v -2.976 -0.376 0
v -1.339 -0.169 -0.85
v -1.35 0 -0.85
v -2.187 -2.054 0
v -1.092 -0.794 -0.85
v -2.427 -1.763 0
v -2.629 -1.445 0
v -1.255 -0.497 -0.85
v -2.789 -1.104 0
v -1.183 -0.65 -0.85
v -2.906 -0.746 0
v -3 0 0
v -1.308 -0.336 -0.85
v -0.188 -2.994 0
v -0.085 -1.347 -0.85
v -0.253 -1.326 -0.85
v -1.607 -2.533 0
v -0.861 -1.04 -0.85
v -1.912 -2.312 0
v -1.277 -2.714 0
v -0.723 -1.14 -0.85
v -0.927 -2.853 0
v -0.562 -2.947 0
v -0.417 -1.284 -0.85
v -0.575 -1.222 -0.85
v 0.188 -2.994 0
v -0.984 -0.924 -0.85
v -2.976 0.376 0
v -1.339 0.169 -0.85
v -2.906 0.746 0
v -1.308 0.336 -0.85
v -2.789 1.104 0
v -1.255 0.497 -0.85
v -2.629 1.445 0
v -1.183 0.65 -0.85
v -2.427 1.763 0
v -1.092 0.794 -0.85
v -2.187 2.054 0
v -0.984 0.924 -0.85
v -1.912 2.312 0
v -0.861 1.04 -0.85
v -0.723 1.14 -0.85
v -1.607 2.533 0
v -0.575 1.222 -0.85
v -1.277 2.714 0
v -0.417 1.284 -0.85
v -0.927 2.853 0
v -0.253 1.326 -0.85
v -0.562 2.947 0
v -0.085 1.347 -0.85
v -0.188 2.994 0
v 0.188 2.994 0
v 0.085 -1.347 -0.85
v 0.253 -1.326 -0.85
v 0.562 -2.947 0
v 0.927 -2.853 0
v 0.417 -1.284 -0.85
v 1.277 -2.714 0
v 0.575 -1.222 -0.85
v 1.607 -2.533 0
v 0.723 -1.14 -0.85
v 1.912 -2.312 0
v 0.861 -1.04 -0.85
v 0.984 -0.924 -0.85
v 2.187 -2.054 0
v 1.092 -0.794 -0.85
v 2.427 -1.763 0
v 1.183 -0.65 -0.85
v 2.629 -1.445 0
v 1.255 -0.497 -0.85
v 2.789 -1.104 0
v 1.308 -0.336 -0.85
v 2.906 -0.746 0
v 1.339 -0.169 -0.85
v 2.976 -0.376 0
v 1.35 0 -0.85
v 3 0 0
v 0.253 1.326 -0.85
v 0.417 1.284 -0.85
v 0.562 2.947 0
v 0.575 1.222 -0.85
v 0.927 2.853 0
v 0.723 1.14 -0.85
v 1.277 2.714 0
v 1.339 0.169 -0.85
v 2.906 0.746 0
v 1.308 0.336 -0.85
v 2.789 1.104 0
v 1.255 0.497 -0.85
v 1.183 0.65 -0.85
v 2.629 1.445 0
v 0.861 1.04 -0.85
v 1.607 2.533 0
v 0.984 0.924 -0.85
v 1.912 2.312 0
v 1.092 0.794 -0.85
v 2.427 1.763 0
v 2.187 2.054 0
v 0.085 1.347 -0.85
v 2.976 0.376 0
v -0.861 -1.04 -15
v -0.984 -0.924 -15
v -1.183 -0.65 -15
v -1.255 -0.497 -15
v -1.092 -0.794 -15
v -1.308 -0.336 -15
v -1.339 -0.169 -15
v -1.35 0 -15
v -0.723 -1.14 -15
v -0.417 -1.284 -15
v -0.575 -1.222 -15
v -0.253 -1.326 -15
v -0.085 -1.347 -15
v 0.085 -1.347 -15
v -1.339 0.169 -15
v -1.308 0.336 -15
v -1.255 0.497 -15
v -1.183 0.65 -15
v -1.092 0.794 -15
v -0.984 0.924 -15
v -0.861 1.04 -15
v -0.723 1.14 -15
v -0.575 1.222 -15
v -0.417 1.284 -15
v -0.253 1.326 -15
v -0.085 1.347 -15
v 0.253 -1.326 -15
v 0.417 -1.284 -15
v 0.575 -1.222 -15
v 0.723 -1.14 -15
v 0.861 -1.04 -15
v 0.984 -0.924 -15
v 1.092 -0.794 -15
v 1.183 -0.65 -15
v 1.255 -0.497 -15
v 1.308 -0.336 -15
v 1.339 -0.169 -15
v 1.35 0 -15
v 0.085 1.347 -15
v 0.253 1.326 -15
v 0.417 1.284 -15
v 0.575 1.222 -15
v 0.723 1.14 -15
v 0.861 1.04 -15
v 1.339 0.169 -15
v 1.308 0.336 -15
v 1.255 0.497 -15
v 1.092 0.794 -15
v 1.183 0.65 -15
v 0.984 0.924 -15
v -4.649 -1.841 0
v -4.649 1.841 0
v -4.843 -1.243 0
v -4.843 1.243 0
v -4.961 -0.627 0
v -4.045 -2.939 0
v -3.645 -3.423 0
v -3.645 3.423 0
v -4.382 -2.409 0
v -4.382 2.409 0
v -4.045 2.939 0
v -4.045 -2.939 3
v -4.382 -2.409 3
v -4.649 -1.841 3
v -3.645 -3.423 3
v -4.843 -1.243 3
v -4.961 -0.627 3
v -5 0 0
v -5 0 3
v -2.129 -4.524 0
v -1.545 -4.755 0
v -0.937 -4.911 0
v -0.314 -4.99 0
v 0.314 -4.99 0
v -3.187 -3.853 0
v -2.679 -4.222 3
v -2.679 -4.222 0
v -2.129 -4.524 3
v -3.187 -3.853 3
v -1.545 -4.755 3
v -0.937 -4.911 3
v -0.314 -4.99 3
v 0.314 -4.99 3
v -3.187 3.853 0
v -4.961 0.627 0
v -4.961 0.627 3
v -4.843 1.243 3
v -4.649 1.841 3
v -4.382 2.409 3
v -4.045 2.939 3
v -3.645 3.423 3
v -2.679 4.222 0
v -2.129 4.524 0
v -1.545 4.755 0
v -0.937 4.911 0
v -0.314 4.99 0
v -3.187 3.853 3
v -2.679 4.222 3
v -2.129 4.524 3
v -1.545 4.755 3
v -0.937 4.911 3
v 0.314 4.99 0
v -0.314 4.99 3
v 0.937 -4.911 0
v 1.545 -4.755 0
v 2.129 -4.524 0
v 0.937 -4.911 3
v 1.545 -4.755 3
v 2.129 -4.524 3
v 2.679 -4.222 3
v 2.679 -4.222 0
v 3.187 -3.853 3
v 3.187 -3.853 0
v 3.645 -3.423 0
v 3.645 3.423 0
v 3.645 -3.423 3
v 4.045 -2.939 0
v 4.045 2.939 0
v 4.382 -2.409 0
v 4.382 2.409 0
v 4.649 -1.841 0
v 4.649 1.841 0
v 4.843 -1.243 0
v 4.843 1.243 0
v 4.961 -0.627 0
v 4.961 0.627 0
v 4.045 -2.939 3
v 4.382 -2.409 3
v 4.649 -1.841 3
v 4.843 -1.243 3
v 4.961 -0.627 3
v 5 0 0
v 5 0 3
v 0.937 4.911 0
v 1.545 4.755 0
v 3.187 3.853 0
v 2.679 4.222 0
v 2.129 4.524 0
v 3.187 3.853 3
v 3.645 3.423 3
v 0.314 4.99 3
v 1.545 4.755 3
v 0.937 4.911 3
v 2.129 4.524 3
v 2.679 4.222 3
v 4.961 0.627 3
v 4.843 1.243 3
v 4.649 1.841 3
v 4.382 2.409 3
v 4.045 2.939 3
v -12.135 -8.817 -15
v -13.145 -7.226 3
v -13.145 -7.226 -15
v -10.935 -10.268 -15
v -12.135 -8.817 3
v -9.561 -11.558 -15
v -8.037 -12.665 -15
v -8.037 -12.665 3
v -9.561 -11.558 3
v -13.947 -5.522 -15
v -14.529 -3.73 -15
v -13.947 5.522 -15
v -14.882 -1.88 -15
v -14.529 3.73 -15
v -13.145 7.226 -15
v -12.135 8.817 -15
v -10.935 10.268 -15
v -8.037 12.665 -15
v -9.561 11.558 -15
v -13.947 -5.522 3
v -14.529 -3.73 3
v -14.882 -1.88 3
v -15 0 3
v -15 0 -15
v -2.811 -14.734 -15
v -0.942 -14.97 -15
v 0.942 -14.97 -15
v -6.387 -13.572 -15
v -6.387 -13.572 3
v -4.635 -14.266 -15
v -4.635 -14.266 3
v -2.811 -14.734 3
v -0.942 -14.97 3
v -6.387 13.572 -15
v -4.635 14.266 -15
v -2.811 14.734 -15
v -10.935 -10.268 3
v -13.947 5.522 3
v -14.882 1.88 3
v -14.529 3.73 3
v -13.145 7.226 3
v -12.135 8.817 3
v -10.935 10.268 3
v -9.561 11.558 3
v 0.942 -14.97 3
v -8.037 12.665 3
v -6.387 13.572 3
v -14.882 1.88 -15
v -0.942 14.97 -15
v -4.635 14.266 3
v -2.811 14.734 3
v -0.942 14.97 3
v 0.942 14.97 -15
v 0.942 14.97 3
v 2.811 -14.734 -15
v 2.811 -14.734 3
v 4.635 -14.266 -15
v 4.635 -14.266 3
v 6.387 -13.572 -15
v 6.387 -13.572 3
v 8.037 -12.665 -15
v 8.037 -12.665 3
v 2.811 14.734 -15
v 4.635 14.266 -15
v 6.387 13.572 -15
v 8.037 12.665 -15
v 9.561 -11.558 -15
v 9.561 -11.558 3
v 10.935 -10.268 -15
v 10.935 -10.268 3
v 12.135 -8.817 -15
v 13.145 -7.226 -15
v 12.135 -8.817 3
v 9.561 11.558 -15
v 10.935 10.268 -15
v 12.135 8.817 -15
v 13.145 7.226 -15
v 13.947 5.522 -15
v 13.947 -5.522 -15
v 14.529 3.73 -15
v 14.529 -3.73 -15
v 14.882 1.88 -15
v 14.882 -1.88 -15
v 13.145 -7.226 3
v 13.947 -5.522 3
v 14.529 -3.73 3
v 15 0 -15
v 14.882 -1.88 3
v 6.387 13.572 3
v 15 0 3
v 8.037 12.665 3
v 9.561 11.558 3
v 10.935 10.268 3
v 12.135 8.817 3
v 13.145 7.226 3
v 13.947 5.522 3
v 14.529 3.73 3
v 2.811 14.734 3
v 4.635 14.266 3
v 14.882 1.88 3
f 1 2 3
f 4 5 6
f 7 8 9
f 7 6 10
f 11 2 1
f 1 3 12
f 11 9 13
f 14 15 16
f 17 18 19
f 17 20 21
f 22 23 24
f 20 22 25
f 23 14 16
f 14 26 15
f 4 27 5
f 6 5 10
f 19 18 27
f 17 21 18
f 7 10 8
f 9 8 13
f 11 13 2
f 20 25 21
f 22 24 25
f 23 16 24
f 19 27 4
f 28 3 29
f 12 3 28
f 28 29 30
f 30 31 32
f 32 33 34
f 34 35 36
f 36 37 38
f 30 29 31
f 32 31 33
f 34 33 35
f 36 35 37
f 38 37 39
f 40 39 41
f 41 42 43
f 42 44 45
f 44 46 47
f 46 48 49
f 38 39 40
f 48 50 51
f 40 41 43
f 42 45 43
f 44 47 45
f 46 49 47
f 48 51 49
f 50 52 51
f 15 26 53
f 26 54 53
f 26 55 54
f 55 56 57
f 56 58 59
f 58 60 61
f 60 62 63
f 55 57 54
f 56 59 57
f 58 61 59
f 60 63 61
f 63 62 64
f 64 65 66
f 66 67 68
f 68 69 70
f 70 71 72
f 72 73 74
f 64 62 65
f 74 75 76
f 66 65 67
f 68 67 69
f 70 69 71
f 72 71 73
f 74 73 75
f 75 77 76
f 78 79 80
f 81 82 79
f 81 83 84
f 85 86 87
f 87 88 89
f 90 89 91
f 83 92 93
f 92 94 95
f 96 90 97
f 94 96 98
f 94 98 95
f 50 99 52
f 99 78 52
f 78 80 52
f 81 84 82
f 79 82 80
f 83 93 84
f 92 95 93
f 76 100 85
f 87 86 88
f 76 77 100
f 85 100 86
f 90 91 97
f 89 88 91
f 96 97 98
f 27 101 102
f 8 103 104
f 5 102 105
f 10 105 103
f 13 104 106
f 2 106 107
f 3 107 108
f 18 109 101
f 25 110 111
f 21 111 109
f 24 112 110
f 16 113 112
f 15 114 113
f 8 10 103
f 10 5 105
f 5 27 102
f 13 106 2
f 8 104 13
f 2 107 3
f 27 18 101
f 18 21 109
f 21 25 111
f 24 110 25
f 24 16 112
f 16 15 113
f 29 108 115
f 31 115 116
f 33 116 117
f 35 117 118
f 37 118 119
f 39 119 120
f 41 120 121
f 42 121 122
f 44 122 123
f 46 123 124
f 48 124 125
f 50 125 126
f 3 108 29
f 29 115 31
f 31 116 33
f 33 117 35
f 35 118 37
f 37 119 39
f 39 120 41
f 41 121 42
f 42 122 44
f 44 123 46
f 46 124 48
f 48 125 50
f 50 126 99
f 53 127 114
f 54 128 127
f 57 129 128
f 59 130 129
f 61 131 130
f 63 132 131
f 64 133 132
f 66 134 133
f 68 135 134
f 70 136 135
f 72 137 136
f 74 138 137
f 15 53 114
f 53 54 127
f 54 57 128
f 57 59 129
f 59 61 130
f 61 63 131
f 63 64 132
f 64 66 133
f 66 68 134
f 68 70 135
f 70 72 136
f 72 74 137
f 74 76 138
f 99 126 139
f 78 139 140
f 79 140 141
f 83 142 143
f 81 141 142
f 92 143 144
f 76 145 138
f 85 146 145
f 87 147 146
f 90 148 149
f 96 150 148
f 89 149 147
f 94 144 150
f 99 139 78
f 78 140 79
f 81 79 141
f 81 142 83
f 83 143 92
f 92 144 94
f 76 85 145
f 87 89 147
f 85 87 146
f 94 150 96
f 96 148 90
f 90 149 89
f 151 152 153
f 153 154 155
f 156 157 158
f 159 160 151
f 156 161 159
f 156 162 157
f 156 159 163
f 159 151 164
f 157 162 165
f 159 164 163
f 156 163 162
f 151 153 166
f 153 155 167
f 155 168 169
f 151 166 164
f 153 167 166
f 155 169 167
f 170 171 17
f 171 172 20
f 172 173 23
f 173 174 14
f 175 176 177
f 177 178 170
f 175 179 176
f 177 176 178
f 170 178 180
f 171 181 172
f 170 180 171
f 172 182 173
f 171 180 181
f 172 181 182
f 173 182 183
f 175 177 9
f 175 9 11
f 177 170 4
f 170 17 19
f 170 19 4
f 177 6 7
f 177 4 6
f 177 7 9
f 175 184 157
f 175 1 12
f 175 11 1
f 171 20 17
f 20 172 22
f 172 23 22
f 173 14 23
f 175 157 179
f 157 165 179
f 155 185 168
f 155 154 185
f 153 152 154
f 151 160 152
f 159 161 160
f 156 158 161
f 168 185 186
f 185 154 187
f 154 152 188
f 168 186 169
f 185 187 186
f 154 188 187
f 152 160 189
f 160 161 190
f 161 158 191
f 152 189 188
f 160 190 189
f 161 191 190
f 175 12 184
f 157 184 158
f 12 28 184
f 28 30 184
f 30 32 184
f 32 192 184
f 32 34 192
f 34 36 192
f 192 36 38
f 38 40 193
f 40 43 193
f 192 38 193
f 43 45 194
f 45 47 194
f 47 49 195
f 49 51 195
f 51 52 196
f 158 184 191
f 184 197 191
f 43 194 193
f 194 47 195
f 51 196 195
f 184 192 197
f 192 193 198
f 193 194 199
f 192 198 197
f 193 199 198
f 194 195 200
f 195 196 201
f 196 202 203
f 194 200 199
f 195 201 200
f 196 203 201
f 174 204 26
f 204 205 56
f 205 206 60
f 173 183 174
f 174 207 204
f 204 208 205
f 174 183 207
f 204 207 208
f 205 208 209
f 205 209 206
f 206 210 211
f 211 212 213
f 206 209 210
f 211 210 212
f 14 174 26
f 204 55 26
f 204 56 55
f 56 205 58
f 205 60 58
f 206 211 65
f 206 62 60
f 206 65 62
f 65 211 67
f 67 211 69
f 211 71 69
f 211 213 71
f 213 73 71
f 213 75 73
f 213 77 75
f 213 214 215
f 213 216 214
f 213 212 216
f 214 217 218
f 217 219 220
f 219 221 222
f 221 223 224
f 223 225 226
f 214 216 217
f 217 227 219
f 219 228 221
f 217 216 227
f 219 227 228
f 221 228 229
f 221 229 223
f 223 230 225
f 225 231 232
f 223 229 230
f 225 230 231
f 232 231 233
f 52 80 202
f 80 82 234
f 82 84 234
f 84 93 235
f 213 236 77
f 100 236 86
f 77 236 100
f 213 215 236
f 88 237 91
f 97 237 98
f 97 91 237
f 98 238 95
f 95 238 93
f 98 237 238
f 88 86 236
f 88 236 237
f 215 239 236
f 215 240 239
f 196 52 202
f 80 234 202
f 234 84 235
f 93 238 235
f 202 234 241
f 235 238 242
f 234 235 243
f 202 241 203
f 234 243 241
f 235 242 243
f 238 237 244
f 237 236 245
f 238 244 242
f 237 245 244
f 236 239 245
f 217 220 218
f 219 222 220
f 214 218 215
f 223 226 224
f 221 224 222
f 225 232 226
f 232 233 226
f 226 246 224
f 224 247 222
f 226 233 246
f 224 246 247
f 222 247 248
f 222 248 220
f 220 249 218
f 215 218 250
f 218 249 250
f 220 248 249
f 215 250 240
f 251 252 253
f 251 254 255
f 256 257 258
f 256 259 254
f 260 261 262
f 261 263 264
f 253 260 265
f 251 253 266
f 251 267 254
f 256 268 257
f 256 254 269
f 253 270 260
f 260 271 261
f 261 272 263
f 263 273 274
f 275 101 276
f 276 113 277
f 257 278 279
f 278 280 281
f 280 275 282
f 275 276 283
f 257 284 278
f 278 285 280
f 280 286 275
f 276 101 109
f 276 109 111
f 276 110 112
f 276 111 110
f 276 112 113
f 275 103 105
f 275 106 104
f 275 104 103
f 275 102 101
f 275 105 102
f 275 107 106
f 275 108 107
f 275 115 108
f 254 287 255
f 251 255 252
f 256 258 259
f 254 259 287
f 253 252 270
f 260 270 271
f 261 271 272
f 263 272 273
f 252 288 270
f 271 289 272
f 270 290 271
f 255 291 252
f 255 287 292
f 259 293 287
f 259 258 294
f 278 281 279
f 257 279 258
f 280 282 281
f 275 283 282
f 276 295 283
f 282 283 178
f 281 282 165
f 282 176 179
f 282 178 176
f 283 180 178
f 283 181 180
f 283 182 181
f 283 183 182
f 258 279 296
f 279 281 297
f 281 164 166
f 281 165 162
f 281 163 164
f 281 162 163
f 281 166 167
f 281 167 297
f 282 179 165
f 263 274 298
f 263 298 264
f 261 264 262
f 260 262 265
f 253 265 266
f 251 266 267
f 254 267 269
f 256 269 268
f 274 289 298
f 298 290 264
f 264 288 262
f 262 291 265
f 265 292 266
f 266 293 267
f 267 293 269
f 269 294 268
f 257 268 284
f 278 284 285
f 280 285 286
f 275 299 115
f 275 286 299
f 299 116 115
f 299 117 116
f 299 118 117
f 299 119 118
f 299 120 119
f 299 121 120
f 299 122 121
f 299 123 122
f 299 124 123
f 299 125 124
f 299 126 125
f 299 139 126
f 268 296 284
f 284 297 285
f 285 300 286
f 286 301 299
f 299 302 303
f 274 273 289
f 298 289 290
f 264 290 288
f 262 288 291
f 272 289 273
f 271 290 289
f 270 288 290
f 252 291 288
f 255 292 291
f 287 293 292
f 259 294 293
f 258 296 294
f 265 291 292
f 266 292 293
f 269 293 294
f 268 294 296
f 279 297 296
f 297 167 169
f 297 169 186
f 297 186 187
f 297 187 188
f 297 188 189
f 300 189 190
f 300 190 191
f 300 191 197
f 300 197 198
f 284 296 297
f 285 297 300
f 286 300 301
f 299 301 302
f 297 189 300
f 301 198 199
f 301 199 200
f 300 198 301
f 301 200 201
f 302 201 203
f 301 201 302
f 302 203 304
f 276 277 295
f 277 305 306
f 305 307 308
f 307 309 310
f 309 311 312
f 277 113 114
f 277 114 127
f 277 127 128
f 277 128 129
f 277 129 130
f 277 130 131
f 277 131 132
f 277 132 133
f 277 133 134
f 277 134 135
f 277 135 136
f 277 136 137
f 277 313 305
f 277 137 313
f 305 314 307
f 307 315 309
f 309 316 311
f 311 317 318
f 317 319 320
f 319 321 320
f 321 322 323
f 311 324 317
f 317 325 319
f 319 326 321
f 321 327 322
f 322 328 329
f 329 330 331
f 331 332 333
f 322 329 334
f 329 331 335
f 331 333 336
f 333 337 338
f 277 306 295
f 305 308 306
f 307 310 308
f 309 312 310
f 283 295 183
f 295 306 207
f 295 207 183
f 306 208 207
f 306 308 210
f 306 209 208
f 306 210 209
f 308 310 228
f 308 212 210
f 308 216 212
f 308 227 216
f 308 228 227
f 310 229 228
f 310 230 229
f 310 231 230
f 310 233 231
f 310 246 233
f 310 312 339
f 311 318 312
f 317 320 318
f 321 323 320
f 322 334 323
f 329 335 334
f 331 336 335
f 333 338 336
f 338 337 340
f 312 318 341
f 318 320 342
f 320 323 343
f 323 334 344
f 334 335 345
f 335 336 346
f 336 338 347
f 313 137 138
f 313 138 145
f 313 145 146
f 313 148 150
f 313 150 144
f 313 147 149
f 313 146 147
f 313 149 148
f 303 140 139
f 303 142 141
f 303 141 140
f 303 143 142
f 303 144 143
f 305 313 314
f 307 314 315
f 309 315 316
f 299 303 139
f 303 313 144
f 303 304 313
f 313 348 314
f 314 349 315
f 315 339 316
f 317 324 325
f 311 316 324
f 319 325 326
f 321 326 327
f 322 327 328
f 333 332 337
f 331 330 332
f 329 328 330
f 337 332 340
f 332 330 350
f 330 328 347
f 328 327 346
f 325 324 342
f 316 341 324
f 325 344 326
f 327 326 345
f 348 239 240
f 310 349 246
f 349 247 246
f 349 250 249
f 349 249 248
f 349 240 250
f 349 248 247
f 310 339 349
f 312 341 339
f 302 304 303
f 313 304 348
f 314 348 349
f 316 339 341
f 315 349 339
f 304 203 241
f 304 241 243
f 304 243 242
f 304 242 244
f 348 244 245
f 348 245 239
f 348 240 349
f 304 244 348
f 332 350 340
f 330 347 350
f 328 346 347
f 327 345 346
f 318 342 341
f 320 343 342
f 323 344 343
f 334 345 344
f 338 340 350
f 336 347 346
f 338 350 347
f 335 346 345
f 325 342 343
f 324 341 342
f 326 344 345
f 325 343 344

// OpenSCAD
$fn = 50;


difference() {
	union() {
		translate(v = [0, 0, -15.0000000000]) {
			cylinder(h = 18, r = 15.0000000000);
		}
	}
	union() {
		translate(v = [0, 0, 0]) {
			rotate(a = [0, 0, 0]) {
				difference() {
					union() {
						translate(v = [0, 0, -18.0000000000]) {
							cylinder(h = 18, r = 1.0000000000);
						}
						translate(v = [0, 0, -0.8500000000]) {
							cylinder(h = 0.8500000000, r1 = 1.3500000000, r2 = 3.0000000000);
						}
						translate(v = [0, 0, -18.0000000000]) {
							cylinder(h = 18, r = 1.3500000000);
						}
						translate(v = [0, 0, -18.0000000000]) {
							cylinder(h = 18, r = 1.0000000000);
						}
					}
					union();
				}
			}
		}
		#cylinder(h = 3, r = 5.0000000000);
	}
}
